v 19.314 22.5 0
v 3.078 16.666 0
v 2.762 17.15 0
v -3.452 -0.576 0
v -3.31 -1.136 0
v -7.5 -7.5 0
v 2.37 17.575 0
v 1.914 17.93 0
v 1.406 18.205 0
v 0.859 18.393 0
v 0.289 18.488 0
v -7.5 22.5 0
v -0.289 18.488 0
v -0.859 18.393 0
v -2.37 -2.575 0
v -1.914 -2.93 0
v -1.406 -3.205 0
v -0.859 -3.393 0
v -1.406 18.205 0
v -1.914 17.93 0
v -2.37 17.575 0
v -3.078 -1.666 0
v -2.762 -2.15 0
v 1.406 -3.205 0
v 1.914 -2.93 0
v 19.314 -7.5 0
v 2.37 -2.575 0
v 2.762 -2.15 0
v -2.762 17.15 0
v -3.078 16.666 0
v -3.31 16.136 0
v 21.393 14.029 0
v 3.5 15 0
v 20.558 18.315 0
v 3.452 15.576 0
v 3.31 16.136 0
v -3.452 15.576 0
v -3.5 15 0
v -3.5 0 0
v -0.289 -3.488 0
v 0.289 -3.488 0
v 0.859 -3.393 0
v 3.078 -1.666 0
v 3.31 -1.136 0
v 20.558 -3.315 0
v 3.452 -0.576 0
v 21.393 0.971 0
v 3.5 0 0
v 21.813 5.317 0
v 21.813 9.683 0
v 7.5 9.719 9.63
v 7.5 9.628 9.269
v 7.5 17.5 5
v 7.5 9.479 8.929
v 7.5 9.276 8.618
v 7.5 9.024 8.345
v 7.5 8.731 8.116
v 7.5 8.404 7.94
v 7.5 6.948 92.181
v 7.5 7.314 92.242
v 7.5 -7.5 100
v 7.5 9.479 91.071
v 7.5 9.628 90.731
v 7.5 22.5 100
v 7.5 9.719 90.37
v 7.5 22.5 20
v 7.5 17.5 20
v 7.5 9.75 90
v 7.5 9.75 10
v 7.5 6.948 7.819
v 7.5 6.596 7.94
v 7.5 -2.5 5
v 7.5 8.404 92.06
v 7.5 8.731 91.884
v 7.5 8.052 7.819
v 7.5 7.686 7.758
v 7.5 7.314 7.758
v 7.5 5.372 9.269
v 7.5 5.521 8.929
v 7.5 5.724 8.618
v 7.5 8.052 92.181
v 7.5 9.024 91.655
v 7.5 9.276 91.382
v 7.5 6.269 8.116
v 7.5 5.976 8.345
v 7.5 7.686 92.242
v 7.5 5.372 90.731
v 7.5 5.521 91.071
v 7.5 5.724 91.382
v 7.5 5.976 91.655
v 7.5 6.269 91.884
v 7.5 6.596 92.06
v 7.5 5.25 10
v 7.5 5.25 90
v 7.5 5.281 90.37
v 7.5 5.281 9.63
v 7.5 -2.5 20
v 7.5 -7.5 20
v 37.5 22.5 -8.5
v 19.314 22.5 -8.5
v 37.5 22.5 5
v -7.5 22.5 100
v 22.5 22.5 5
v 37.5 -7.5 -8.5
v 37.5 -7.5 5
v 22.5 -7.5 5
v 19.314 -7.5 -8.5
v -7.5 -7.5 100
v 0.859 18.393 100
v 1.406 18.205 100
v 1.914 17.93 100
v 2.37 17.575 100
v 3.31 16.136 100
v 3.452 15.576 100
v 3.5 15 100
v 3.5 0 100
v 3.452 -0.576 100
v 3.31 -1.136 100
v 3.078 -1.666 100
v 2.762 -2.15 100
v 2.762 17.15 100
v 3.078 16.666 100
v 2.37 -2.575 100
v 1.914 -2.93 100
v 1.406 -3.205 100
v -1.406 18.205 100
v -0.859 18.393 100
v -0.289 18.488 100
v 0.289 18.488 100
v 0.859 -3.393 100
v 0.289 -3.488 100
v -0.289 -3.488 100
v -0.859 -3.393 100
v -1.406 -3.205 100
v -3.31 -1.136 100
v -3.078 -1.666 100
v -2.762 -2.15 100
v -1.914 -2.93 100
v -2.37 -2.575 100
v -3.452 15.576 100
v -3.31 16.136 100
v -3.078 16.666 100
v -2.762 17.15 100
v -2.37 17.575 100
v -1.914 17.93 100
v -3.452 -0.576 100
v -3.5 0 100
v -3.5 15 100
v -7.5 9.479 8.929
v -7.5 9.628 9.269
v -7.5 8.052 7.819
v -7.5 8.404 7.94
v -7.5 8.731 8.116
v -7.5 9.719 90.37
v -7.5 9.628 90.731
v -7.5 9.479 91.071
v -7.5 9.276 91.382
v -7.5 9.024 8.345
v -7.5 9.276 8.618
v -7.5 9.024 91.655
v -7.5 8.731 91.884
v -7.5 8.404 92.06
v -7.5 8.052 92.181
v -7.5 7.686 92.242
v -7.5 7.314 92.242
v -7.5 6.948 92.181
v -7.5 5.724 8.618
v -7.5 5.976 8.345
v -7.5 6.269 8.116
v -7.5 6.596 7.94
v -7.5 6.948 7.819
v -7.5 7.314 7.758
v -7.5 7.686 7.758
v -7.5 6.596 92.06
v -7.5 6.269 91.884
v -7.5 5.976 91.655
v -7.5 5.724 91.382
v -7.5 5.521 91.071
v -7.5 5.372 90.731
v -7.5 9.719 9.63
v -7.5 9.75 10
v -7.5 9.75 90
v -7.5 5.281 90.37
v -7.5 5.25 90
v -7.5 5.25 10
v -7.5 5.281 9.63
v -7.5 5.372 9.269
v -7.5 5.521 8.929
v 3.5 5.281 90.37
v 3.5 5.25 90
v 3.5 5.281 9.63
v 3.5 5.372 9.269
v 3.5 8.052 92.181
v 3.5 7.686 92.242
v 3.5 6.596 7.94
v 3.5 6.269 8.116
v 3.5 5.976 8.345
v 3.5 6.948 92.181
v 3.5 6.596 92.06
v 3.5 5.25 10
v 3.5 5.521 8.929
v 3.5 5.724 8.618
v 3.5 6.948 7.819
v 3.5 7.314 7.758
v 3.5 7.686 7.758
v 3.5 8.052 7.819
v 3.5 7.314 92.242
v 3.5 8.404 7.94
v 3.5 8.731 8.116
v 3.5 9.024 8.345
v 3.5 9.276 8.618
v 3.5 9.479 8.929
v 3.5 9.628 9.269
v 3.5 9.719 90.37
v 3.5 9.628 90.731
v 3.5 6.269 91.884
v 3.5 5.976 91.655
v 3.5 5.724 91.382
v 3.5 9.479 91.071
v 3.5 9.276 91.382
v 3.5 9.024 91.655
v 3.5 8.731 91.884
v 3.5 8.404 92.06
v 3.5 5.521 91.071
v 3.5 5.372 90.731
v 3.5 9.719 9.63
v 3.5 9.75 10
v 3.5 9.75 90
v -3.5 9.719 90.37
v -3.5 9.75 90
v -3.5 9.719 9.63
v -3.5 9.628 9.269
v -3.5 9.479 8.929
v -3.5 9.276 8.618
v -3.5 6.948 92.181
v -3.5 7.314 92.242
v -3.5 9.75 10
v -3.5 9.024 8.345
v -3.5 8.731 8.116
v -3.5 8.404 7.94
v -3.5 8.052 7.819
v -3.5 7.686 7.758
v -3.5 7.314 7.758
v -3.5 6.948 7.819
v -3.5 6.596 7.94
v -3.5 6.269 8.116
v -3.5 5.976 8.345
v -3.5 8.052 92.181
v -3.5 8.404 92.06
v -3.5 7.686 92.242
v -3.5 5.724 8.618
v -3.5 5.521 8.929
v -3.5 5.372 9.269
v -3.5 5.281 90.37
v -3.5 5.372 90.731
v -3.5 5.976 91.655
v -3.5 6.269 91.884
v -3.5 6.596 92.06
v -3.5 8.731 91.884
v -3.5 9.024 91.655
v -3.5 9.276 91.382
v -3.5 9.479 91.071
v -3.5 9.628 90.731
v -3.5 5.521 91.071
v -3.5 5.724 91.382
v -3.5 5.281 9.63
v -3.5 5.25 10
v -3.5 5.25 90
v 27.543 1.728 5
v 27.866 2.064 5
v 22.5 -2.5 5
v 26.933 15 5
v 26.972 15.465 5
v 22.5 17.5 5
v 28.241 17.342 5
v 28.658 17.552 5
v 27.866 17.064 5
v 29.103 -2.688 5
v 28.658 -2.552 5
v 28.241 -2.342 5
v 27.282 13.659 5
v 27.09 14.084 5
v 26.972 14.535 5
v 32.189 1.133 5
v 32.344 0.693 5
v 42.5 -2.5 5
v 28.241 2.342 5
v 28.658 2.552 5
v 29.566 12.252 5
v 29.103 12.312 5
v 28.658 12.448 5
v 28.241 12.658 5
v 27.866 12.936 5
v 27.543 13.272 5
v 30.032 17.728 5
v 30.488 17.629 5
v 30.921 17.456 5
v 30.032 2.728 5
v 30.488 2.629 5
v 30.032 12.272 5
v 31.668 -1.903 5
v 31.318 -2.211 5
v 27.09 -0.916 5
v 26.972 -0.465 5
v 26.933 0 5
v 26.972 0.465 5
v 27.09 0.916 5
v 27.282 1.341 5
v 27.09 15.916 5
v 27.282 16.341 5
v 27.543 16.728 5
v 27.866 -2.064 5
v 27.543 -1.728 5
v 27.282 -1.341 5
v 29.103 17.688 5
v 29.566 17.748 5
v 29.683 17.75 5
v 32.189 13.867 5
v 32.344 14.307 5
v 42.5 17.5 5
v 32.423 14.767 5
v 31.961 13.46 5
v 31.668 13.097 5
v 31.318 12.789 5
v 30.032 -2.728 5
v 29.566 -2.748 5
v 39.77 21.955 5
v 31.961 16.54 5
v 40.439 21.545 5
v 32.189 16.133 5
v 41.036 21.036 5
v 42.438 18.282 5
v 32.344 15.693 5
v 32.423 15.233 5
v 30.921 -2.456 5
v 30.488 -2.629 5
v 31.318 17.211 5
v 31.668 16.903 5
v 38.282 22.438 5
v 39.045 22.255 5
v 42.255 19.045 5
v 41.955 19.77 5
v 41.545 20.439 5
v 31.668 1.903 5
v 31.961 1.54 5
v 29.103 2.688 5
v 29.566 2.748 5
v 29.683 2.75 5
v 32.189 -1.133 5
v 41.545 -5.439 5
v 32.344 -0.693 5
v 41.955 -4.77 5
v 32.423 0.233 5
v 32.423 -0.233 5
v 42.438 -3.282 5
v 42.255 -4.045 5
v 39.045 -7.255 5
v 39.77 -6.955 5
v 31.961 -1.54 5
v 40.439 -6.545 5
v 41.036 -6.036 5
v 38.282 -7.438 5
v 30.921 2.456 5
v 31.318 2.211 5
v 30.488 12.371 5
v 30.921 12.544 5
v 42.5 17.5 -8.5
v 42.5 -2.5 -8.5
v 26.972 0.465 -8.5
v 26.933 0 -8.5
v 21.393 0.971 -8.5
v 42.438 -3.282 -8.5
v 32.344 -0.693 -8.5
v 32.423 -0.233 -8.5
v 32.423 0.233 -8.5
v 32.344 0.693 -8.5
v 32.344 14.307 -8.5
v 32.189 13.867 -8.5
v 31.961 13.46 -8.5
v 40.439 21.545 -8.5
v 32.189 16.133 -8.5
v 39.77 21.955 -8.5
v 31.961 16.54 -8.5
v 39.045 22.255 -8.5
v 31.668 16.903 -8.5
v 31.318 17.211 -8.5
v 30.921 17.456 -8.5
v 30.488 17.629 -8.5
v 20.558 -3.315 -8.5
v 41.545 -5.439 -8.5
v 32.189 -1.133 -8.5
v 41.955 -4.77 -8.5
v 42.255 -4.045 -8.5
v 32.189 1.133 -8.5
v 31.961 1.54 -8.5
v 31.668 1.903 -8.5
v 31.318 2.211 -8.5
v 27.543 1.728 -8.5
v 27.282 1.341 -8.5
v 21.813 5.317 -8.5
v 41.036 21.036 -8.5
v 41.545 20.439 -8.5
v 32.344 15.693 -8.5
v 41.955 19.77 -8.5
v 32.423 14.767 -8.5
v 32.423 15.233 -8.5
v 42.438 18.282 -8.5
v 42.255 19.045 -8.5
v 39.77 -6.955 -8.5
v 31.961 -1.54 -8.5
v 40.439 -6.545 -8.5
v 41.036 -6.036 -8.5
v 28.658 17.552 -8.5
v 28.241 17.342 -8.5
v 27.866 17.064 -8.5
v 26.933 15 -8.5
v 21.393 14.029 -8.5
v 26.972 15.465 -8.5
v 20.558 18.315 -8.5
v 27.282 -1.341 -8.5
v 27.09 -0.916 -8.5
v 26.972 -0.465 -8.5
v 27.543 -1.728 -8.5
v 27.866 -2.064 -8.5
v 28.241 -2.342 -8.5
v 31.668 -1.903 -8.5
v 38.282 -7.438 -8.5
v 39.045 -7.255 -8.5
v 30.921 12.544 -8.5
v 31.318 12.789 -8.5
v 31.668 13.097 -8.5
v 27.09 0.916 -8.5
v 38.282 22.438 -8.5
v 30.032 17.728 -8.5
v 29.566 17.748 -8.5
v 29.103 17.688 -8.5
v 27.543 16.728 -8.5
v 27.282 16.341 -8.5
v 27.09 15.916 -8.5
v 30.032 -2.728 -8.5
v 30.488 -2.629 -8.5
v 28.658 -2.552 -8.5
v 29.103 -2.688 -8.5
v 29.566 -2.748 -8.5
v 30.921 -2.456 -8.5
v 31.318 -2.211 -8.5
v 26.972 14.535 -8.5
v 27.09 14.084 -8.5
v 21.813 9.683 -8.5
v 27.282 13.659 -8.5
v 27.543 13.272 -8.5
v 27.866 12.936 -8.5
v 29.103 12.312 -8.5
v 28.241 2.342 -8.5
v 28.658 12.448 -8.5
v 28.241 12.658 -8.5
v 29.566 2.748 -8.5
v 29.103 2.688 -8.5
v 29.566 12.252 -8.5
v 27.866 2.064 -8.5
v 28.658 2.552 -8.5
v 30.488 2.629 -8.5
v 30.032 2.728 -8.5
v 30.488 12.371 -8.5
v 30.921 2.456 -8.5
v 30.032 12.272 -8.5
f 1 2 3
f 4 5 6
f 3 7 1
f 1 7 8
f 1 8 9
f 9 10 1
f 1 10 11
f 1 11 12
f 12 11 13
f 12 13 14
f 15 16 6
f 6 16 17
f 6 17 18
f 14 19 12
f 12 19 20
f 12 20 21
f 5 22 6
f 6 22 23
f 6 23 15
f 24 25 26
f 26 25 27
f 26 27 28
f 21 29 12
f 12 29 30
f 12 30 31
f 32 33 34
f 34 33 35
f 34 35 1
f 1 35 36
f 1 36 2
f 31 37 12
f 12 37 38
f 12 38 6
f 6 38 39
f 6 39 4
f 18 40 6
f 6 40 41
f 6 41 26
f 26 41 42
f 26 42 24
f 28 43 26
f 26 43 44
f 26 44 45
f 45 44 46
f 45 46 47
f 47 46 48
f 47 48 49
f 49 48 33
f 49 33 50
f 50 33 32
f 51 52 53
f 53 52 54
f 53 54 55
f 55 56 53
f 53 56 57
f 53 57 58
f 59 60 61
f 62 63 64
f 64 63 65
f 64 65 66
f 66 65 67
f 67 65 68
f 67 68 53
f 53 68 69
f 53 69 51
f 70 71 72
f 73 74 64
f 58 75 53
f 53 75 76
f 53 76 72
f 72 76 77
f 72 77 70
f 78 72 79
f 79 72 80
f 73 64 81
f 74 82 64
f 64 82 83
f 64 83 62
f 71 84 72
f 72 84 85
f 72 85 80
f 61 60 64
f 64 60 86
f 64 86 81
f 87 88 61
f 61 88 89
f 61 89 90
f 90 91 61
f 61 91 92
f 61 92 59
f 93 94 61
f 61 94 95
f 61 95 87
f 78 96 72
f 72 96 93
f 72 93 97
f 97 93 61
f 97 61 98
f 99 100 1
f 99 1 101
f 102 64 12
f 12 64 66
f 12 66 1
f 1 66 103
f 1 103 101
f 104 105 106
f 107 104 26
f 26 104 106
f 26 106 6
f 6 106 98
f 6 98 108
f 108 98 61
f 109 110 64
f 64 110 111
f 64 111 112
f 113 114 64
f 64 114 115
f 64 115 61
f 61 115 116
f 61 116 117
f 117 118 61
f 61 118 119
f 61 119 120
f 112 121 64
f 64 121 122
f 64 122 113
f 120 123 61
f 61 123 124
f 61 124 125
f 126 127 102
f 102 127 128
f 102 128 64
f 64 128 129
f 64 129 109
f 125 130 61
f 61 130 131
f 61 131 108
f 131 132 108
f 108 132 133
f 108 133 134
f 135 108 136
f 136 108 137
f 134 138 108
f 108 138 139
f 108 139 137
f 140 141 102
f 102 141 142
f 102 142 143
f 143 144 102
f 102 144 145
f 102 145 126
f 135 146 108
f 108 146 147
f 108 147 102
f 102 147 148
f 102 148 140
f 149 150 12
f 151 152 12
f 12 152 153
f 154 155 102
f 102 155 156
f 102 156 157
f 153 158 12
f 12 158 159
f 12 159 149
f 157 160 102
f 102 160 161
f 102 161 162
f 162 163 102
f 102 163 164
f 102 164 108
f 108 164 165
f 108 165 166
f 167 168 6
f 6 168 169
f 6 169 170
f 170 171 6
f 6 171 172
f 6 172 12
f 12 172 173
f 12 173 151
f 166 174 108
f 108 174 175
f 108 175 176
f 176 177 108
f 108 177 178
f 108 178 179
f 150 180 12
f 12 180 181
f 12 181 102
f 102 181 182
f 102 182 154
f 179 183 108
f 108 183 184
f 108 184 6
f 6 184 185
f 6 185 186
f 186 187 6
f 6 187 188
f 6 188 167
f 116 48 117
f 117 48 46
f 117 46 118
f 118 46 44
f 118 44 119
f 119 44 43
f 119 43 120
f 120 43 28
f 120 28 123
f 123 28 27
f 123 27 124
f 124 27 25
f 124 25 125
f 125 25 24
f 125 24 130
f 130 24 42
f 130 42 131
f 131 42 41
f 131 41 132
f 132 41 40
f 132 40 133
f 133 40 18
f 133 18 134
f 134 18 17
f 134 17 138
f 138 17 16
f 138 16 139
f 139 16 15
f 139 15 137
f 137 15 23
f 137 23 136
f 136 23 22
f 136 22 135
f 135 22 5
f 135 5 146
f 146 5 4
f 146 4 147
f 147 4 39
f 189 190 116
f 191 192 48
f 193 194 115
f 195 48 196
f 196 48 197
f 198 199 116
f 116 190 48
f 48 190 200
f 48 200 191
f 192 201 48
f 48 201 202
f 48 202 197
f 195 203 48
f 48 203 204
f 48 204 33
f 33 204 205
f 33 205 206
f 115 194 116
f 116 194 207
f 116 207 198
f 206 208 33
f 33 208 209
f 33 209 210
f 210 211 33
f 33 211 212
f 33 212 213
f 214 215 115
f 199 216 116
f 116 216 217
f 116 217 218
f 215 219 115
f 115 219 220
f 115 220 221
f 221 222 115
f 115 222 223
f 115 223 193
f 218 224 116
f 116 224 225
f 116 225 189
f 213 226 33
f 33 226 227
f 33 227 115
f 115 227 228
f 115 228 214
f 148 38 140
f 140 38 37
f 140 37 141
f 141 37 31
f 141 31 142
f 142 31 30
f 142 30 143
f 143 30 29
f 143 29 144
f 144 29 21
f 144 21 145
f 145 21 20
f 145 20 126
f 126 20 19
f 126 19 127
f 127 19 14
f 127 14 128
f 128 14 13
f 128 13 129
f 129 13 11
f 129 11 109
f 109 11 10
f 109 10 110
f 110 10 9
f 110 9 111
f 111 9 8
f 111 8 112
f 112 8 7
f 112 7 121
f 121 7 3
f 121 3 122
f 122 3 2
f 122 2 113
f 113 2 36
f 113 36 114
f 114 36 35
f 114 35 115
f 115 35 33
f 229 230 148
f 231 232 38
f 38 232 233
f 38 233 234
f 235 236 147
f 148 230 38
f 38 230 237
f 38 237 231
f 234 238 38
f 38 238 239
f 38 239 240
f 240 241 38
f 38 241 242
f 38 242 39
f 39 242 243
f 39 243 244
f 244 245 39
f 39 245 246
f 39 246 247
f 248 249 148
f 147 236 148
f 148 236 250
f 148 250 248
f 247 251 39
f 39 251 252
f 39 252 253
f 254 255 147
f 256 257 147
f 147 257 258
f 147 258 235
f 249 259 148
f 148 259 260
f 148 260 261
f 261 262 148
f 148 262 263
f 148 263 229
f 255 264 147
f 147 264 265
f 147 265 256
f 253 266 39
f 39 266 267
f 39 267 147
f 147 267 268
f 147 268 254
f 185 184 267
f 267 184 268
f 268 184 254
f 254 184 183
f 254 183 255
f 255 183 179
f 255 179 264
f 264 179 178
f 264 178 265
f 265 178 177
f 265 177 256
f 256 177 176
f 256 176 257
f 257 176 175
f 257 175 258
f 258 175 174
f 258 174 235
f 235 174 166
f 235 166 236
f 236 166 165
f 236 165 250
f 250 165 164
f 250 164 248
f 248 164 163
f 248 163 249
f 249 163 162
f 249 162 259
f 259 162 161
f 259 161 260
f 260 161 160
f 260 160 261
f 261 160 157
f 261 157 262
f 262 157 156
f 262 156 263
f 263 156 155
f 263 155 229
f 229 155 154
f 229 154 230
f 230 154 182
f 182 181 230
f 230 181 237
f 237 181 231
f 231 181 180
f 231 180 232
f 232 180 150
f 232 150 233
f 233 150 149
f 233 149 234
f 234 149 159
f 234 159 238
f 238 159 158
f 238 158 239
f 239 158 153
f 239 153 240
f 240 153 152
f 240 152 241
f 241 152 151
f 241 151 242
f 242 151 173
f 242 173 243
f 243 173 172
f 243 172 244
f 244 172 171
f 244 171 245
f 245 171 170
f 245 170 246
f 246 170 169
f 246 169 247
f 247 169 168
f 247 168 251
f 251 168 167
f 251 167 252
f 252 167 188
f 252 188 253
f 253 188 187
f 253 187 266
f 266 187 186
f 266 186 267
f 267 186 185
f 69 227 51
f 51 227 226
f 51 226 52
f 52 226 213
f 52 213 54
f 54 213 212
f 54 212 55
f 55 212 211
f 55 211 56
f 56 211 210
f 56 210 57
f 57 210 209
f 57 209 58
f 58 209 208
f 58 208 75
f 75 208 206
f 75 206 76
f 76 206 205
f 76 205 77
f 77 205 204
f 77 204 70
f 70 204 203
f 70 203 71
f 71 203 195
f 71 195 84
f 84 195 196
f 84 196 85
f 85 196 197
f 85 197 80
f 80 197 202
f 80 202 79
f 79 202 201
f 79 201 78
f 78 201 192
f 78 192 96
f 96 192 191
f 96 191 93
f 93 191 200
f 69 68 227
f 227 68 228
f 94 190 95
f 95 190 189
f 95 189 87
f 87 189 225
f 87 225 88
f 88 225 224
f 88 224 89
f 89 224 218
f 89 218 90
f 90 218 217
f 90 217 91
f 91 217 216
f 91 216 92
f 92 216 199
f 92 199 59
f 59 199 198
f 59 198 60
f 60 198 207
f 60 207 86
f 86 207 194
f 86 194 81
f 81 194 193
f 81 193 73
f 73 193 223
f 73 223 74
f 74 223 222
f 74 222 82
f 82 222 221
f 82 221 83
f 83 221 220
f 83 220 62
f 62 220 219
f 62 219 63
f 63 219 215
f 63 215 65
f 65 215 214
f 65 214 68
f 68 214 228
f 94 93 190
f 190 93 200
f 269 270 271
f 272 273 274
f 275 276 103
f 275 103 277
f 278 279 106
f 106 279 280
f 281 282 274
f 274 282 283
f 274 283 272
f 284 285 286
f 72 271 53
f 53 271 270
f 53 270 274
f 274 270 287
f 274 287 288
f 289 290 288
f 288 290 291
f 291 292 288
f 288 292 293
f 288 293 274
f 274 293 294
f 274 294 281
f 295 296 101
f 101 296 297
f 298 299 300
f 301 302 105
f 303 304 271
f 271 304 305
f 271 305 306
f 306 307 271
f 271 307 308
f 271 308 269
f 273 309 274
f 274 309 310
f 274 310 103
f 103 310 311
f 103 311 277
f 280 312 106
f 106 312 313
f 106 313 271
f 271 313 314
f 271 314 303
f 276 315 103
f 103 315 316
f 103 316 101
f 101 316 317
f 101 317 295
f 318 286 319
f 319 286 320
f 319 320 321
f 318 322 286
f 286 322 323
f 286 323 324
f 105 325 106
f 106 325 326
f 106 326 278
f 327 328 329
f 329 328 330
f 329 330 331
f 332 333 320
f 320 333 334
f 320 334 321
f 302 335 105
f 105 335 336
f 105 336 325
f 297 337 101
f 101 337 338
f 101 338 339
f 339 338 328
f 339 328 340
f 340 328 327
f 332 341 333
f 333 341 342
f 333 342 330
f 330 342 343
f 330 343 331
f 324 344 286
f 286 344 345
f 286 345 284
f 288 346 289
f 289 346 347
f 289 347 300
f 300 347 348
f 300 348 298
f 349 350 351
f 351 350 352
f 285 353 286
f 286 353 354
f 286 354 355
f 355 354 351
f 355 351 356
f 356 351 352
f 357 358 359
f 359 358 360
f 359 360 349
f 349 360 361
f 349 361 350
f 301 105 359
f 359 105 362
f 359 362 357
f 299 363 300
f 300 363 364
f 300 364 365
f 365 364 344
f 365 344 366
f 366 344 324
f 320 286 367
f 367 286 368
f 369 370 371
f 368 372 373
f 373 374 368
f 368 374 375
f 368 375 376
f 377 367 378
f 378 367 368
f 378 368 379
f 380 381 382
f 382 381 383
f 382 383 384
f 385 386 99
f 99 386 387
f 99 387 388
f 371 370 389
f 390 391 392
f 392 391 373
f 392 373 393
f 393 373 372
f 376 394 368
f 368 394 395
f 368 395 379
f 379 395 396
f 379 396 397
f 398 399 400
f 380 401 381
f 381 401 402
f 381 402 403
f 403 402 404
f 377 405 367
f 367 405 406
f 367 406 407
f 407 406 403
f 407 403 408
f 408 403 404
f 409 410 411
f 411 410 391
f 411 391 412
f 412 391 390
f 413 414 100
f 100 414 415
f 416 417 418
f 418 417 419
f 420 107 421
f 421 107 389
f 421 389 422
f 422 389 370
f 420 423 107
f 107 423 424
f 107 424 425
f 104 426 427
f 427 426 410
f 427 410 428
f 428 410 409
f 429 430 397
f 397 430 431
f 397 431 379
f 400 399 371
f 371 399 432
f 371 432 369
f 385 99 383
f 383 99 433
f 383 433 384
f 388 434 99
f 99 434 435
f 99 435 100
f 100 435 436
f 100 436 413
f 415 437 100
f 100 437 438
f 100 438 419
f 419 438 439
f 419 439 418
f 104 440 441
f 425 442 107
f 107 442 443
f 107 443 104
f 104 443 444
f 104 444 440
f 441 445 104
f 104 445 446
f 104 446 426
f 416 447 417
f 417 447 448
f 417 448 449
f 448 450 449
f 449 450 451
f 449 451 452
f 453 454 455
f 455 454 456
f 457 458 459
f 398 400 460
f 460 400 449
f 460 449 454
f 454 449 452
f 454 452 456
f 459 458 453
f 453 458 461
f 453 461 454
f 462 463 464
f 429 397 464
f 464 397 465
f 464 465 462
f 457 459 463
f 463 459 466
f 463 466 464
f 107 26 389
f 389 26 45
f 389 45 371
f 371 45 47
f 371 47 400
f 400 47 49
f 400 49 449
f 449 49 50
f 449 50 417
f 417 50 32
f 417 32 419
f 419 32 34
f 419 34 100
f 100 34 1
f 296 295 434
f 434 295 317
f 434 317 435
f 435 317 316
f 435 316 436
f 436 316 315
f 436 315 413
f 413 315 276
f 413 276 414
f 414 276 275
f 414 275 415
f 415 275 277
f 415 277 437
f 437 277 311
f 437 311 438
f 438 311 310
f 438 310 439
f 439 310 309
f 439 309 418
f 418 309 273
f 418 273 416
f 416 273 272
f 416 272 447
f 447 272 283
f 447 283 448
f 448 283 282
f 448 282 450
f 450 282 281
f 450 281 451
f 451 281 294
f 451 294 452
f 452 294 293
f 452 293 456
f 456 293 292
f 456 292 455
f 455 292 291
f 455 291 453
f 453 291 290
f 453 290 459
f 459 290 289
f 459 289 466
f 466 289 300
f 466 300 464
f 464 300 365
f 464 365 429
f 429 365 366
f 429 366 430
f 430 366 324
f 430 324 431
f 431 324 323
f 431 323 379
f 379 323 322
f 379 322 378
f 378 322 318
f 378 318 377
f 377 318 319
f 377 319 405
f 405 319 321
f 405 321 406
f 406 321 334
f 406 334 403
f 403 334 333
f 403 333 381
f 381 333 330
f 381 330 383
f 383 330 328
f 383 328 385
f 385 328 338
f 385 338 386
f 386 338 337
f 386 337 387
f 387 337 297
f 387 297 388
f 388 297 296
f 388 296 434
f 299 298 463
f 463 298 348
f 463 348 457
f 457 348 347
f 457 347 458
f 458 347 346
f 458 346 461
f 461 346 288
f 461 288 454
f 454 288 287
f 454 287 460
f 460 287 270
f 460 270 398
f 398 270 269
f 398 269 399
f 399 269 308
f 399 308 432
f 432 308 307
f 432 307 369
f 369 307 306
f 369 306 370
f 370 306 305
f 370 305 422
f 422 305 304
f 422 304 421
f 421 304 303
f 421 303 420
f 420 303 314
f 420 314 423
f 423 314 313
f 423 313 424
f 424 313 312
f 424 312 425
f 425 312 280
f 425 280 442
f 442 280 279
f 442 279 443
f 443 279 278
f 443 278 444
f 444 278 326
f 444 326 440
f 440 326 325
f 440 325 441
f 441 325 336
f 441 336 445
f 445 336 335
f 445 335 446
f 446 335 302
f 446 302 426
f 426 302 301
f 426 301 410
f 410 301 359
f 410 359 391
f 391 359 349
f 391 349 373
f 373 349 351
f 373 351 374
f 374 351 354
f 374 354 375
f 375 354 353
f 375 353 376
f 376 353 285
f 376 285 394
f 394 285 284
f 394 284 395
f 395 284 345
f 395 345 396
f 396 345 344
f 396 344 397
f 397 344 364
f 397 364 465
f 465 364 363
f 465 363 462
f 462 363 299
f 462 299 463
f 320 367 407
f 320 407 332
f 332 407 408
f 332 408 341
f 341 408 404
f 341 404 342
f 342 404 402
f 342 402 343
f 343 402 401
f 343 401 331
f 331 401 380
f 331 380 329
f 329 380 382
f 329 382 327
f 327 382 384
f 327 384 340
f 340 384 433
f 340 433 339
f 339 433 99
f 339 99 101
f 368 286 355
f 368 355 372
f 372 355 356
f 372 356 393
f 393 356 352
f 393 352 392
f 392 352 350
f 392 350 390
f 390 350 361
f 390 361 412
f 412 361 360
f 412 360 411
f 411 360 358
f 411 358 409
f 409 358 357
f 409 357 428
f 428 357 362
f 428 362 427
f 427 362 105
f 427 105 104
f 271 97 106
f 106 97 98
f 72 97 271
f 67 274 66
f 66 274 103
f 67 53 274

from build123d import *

# Parameters (mm, degrees)
SKETCH3_W           = 15
SKETCH3_H           = 30
BOSS_EXTRUDE2_DEPTH = 100
CUT_EXTRUDE1_DEPTH  = 104.591746776
BOSS_EXTRUDE3_DEPTH = 5
BOSS_EXTRUDE4_START = 8.5
BOSS_EXTRUDE4_DEPTH = 8.5
FILLET1_R           = 5
SKETCH8_W           = 20
SKETCH8_H           = 13.5
CUT_EXTRUDE3_DEPTH  = 113.722003176
SKETCH10_W          = 5
SKETCH10_H          = 30
BOSS_EXTRUDE5_DEPTH = 35
BOSS_EXTRUDE6_DEPTH = 8.5
SKETCH12_R          = 2.75
CUT_EXTRUDE4_DEPTH  = 119.679189414
FILLET2_R           = 5
BOSS_EXTRUDE7_DEPTH = 5
BOSS_EXTRUDE8_DEPTH = 5


with BuildPart() as part:
    # Sketch3 → Boss-Extrude2 (new body)
    with BuildSketch(Plane.XY):
        with Locations((0, 7.5)):
            Rectangle(SKETCH3_W, SKETCH3_H)
        with BuildLine():
            Line((-3.5, 0), (-3.5, 15))
            ThreePointArc((-3.5, 15), (0, 18.5), (3.5, 15))
            Line((3.5, 15), (3.5, 0))
            ThreePointArc((3.5, 0), (0, -3.5), (-3.5, 0))
        make_face(mode=Mode.SUBTRACT)
    extrude(amount=BOSS_EXTRUDE2_DEPTH)

    # Sketch4 → Cut-Extrude1 (cut, through all)
    with BuildSketch(Plane.ZY.offset(7.5)):
        with BuildLine():
            Line((10, 9.75), (90, 9.75))
            ThreePointArc((90, 9.75), (92.25, 7.5), (90, 5.25))
            Line((90, 5.25), (10, 5.25))
            ThreePointArc((10, 5.25), (7.75, 7.5), (10, 9.75))
        make_face()
    extrude(amount=-CUT_EXTRUDE1_DEPTH, mode=Mode.SUBTRACT)

    # Sketch5 → Boss-Extrude3 (add)
    with BuildSketch(Plane(origin=(0, 0, 0), x_dir=(-1, 0, 0), z_dir=(0, 0, -1))):
        with BuildLine():
            Line((-7.5, -7.5), (-7.5, 7.5))
            Line((-7.5, 7.5), (-7.5, 22.5))
            Line((-7.5, 22.5), (-14, 22.5))
            Line((-14, 22.5), (-37.5, 22.5))
            ThreePointArc((-37.5, 22.5), (-41.035533906, 21.035533906), (-42.5, 17.5))
            Line((-42.5, 17.5), (-42.5, -2.5))
            ThreePointArc((-42.5, -2.5), (-41.035533906, -6.035533906), (-37.5, -7.5))
            Line((-37.5, -7.5), (-14, -7.5))
            Line((-14, -7.5), (-7.5, -7.5))
        make_face()
    extrude(amount=-BOSS_EXTRUDE3_DEPTH)

    # Sketch6 → Boss-Extrude4 (add)
    with BuildSketch(Plane(origin=(0, 0, 0), x_dir=(-1, 0, 0), z_dir=(0, 0, -1)).offset(BOSS_EXTRUDE4_START)):
        with BuildLine():
            Line((-8.122776602, 22.5), (-37.5, 22.5))
            ThreePointArc((-37.5, 22.5), (-41.035533906, 21.035533906), (-42.5, 17.5))
            Line((-42.5, 17.5), (-42.5, -2.5))
            ThreePointArc((-42.5, -2.5), (-41.035533906, -6.035533906), (-37.5, -7.5))
            Line((-37.5, -7.5), (-8.122776602, -7.5))
            ThreePointArc((-8.122776602, -7.5), (-11.5, 7.5), (-8.122776602, 22.5))
        make_face()
    extrude(amount=-BOSS_EXTRUDE4_DEPTH)

    # Fillet1
    fillet1_edges = [part.edges().sort_by_distance(p)[0] for p in [
        (8.122776602, -7.5, -4.25),
        (8.122776602, 22.5, -4.25),
    ]]
    fillet(fillet1_edges, radius=FILLET1_R)

    # Sketch8 → Cut-Extrude3 (cut, through all)
    with BuildSketch(Plane(origin=(0, 22.5, 0), x_dir=(1, 0, 0), z_dir=(0, 1, 0))):
        with Locations((17.5, 1.75)):
            Rectangle(SKETCH8_W, SKETCH8_H)
    extrude(amount=-CUT_EXTRUDE3_DEPTH, mode=Mode.SUBTRACT)


with BuildPart() as cut_extrude3_piece_1:
    # of the separate pieces the step leaves, piece 1, a body of its own (cut_extrude3_pieces)
    add(part.part.solids().sort_by_distance((-7.5, -7.5, 100))[0])

    # Sketch10 → Boss-Extrude5 (add)
    with BuildSketch(Plane(origin=(7.5, 0, 0), x_dir=(0, 0, -1), z_dir=(1, 0, 0))):
        with Locations((-2.5, 7.5)):
            Rectangle(SKETCH10_W, SKETCH10_H)
    extrude(amount=BOSS_EXTRUDE5_DEPTH)

    # Sketch11 → Boss-Extrude6 (add)
    with BuildSketch(Plane(origin=(0, 0, 0), x_dir=(-1, 0, 0), z_dir=(0, 0, -1))):
        with BuildLine():
            Line((-42.5, -7.5), (-22.5, -7.5))
            Line((-22.5, -7.5), (-19.314112746, -7.5))
            ThreePointArc((-19.314112746, -7.5), (-21.865716684, 7.5), (-19.314112746, 22.5))
            Line((-19.314112746, 22.5), (-22.5, 22.5))
            Line((-22.5, 22.5), (-42.5, 22.5))
            Line((-42.5, 22.5), (-42.5, -7.5))
        make_face()
    extrude(amount=BOSS_EXTRUDE6_DEPTH)

    # Sketch12 → Cut-Extrude4 (cut, through all)
    with BuildSketch(Plane(origin=(0, 0, -8.5), x_dir=(-1, 0, 0), z_dir=(0, 0, -1))):
        with Locations((-29.682858342, 0)):
            Circle(SKETCH12_R)
        with Locations((-29.682858342, 15)):
            Circle(SKETCH12_R)
    extrude(amount=-CUT_EXTRUDE4_DEPTH, mode=Mode.SUBTRACT)

    # Fillet2
    fillet2_edges = [cut_extrude3_piece_1.edges().sort_by_distance(p)[0] for p in [
        (42.5, -7.5, -1.75),
        (42.5, 22.5, -1.75),
    ]]
    fillet(fillet2_edges, radius=FILLET2_R)

    # Sketch13 → Boss-Extrude7 (add)
    with BuildSketch(Plane.XZ.offset(7.5)):
        Polygon((7.5, 5), (7.5, 20), (22.5, 5), align=None)
    extrude(amount=-BOSS_EXTRUDE7_DEPTH)

    # Sketch14 → Boss-Extrude8 (add)
    with BuildSketch(Plane(origin=(0, 22.5, 0), x_dir=(1, 0, 0), z_dir=(0, 1, 0))):
        Polygon((22.5, -5), (7.5, -5), (7.5, -20), align=None)
    extrude(amount=-BOSS_EXTRUDE8_DEPTH)


with BuildPart() as cut_extrude3_piece_2:
    # of the separate pieces the step leaves, piece 2, a body of its own (cut_extrude3_pieces)
    add(part.part.solids().sort_by_distance((37.5, -7.5, -8.5))[0])


solid = cut_extrude3_piece_1.part
